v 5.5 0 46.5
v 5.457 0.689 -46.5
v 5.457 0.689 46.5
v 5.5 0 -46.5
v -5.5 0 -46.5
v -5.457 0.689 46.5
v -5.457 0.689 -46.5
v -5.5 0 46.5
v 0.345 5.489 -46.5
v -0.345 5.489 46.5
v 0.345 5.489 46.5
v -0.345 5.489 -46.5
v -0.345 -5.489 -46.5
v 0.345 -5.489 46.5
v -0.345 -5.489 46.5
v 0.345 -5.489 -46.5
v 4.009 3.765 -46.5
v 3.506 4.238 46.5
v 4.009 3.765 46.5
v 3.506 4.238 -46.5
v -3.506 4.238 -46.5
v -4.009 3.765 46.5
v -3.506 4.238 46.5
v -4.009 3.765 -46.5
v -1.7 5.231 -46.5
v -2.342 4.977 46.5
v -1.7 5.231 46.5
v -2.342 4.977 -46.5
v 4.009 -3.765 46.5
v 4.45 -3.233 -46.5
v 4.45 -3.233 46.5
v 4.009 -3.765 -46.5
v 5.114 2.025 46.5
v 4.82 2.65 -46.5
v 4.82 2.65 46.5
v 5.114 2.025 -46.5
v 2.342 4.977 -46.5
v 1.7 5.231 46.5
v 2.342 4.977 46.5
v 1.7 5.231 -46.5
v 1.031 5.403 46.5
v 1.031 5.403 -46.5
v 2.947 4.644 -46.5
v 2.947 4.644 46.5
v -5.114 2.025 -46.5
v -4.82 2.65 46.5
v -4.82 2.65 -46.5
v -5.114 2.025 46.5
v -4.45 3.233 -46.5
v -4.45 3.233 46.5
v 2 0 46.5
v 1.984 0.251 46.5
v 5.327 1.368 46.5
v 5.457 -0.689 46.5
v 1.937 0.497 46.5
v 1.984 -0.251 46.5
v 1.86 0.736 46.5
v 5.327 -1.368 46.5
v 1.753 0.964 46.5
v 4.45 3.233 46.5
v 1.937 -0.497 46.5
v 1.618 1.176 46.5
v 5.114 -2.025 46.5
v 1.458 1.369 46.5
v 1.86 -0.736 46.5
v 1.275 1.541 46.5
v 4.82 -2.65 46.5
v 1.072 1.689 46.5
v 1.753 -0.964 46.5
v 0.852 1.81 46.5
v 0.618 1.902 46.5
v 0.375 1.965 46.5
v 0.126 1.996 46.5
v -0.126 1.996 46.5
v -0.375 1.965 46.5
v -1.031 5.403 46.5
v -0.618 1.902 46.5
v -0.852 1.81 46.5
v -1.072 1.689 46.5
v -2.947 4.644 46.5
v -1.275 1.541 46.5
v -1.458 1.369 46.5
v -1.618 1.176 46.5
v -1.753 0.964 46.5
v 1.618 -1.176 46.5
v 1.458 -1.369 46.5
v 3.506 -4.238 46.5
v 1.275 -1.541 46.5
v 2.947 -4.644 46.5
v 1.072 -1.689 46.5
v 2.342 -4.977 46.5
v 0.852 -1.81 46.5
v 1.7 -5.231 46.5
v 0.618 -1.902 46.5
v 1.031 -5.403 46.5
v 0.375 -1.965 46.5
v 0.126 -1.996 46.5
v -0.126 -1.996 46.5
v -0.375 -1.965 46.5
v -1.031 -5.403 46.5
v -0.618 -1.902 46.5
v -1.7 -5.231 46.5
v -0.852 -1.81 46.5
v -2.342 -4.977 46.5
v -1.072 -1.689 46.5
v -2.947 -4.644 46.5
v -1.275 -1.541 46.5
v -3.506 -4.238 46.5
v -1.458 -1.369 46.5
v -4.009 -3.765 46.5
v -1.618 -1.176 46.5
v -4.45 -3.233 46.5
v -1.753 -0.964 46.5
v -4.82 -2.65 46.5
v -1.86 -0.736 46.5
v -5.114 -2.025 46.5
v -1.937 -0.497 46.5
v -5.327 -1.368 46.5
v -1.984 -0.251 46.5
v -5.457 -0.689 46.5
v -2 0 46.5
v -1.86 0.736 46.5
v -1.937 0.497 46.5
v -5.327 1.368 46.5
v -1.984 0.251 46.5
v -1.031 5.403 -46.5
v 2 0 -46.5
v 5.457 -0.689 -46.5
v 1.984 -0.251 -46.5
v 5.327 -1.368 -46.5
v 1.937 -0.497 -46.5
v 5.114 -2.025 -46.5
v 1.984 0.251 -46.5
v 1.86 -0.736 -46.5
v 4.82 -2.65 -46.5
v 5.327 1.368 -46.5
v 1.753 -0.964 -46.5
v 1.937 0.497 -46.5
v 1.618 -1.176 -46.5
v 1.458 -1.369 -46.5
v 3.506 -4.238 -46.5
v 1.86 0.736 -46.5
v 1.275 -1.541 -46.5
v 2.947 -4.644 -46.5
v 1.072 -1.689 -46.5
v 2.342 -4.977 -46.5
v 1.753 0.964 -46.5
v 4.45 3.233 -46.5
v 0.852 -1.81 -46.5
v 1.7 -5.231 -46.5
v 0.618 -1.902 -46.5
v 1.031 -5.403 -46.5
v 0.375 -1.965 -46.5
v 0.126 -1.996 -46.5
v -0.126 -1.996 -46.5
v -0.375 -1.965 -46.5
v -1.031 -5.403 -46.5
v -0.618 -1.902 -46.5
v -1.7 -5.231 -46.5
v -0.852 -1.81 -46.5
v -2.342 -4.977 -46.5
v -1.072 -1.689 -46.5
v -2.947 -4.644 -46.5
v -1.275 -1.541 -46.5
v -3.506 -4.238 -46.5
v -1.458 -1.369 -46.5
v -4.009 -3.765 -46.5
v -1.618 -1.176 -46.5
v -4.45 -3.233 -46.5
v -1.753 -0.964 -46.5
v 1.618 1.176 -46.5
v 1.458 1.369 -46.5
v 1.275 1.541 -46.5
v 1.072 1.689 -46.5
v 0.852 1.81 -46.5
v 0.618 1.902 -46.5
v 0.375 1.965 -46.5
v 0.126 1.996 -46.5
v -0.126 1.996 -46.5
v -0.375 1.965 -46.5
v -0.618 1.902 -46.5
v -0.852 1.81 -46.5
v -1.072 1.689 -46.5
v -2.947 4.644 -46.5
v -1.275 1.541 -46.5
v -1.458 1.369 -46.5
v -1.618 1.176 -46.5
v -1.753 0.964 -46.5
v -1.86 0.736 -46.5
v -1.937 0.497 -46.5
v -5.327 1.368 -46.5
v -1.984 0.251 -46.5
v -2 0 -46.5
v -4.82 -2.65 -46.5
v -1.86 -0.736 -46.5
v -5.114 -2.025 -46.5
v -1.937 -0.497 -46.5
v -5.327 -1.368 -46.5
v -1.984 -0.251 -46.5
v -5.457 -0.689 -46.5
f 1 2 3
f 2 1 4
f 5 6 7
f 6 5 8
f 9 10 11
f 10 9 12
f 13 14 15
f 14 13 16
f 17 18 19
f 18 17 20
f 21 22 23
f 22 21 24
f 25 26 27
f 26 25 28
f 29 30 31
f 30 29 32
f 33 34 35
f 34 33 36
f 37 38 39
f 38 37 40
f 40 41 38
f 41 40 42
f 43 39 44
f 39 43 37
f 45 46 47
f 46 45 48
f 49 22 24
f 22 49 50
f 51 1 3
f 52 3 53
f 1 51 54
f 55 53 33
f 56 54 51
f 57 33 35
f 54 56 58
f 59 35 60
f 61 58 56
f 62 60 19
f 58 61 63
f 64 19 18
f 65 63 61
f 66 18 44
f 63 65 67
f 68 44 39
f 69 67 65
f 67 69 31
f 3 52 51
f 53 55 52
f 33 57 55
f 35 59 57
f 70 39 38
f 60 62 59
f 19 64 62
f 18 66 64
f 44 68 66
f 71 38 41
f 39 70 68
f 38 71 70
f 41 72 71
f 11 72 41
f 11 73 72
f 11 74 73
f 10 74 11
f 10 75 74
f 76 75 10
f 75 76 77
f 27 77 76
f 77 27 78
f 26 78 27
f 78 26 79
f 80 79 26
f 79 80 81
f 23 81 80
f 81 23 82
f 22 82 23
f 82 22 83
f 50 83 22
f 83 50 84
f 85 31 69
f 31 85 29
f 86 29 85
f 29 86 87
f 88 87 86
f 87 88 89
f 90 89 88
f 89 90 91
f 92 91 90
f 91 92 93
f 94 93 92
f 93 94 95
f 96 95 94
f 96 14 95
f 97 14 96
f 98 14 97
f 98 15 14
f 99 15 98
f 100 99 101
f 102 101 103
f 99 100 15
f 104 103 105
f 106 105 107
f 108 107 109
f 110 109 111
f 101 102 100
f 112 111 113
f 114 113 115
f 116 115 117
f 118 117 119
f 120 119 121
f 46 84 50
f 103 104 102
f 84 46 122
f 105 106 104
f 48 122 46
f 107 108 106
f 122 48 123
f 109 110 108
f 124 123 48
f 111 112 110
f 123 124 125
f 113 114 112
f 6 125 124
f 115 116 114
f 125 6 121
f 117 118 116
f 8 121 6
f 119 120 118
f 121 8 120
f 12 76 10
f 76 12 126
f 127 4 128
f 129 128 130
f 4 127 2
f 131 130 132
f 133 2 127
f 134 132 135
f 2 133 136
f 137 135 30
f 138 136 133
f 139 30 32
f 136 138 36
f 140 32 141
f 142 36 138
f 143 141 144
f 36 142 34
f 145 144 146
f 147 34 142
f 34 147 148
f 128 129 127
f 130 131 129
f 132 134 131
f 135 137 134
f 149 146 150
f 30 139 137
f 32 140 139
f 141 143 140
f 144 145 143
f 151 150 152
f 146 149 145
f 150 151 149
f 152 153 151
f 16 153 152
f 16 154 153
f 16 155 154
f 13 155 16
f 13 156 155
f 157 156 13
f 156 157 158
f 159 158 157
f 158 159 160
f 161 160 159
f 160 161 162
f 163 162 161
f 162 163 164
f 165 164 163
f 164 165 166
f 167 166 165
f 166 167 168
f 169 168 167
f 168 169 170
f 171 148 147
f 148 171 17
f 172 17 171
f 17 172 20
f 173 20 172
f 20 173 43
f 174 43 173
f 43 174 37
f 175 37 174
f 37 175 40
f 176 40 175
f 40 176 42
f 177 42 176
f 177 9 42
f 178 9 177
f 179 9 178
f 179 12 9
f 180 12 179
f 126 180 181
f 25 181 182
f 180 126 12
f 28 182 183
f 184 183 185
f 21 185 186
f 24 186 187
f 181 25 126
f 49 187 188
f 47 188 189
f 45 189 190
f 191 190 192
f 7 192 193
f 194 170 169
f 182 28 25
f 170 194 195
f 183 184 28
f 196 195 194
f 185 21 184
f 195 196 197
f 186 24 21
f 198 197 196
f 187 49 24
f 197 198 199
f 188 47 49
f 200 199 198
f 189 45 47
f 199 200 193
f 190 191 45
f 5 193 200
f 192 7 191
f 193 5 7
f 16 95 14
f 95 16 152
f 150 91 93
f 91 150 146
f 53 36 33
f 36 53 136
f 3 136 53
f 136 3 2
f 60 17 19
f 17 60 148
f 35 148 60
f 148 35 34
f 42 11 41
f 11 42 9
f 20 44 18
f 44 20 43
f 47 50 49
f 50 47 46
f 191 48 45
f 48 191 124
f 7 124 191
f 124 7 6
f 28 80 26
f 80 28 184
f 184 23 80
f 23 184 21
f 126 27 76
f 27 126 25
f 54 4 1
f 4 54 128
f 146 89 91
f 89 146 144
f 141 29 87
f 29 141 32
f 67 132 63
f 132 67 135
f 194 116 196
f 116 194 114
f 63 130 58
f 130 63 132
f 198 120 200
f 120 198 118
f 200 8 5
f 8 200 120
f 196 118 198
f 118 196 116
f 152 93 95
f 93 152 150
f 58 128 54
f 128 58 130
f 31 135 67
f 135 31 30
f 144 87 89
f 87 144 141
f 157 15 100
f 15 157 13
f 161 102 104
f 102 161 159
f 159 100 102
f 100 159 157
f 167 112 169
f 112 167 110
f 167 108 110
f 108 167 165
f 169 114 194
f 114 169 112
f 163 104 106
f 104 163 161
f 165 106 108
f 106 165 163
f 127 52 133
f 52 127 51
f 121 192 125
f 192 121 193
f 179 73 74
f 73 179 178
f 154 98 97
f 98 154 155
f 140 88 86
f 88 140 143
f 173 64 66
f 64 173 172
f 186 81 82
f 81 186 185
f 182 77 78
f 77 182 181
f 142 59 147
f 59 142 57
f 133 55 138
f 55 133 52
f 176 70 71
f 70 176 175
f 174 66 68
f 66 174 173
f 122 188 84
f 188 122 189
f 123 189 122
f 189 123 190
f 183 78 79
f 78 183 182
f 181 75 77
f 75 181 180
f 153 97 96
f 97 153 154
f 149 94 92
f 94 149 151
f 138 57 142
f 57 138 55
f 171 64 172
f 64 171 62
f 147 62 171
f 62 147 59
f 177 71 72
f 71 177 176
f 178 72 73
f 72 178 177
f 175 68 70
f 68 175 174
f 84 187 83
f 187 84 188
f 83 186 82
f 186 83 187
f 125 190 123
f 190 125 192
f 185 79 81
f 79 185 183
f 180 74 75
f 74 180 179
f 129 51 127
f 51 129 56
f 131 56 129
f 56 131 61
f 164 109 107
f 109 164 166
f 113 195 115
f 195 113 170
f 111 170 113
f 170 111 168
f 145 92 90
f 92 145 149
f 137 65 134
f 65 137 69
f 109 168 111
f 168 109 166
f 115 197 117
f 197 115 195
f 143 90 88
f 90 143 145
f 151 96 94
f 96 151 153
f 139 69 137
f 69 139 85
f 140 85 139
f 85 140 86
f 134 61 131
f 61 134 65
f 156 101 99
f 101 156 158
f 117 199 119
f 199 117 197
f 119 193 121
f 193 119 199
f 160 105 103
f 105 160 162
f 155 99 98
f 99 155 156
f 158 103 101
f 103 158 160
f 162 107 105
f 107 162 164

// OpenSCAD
$fn = 50;


difference() {
	union() {
		translate(v = [0, 0, -46.5000000000]) {
			cylinder(h = 93, r = 5.5000000000);
		}
	}
	union() {
		translate(v = [0, 0, -100.0000000000]) {
			cylinder(h = 200, r = 2);
		}
	}
}
